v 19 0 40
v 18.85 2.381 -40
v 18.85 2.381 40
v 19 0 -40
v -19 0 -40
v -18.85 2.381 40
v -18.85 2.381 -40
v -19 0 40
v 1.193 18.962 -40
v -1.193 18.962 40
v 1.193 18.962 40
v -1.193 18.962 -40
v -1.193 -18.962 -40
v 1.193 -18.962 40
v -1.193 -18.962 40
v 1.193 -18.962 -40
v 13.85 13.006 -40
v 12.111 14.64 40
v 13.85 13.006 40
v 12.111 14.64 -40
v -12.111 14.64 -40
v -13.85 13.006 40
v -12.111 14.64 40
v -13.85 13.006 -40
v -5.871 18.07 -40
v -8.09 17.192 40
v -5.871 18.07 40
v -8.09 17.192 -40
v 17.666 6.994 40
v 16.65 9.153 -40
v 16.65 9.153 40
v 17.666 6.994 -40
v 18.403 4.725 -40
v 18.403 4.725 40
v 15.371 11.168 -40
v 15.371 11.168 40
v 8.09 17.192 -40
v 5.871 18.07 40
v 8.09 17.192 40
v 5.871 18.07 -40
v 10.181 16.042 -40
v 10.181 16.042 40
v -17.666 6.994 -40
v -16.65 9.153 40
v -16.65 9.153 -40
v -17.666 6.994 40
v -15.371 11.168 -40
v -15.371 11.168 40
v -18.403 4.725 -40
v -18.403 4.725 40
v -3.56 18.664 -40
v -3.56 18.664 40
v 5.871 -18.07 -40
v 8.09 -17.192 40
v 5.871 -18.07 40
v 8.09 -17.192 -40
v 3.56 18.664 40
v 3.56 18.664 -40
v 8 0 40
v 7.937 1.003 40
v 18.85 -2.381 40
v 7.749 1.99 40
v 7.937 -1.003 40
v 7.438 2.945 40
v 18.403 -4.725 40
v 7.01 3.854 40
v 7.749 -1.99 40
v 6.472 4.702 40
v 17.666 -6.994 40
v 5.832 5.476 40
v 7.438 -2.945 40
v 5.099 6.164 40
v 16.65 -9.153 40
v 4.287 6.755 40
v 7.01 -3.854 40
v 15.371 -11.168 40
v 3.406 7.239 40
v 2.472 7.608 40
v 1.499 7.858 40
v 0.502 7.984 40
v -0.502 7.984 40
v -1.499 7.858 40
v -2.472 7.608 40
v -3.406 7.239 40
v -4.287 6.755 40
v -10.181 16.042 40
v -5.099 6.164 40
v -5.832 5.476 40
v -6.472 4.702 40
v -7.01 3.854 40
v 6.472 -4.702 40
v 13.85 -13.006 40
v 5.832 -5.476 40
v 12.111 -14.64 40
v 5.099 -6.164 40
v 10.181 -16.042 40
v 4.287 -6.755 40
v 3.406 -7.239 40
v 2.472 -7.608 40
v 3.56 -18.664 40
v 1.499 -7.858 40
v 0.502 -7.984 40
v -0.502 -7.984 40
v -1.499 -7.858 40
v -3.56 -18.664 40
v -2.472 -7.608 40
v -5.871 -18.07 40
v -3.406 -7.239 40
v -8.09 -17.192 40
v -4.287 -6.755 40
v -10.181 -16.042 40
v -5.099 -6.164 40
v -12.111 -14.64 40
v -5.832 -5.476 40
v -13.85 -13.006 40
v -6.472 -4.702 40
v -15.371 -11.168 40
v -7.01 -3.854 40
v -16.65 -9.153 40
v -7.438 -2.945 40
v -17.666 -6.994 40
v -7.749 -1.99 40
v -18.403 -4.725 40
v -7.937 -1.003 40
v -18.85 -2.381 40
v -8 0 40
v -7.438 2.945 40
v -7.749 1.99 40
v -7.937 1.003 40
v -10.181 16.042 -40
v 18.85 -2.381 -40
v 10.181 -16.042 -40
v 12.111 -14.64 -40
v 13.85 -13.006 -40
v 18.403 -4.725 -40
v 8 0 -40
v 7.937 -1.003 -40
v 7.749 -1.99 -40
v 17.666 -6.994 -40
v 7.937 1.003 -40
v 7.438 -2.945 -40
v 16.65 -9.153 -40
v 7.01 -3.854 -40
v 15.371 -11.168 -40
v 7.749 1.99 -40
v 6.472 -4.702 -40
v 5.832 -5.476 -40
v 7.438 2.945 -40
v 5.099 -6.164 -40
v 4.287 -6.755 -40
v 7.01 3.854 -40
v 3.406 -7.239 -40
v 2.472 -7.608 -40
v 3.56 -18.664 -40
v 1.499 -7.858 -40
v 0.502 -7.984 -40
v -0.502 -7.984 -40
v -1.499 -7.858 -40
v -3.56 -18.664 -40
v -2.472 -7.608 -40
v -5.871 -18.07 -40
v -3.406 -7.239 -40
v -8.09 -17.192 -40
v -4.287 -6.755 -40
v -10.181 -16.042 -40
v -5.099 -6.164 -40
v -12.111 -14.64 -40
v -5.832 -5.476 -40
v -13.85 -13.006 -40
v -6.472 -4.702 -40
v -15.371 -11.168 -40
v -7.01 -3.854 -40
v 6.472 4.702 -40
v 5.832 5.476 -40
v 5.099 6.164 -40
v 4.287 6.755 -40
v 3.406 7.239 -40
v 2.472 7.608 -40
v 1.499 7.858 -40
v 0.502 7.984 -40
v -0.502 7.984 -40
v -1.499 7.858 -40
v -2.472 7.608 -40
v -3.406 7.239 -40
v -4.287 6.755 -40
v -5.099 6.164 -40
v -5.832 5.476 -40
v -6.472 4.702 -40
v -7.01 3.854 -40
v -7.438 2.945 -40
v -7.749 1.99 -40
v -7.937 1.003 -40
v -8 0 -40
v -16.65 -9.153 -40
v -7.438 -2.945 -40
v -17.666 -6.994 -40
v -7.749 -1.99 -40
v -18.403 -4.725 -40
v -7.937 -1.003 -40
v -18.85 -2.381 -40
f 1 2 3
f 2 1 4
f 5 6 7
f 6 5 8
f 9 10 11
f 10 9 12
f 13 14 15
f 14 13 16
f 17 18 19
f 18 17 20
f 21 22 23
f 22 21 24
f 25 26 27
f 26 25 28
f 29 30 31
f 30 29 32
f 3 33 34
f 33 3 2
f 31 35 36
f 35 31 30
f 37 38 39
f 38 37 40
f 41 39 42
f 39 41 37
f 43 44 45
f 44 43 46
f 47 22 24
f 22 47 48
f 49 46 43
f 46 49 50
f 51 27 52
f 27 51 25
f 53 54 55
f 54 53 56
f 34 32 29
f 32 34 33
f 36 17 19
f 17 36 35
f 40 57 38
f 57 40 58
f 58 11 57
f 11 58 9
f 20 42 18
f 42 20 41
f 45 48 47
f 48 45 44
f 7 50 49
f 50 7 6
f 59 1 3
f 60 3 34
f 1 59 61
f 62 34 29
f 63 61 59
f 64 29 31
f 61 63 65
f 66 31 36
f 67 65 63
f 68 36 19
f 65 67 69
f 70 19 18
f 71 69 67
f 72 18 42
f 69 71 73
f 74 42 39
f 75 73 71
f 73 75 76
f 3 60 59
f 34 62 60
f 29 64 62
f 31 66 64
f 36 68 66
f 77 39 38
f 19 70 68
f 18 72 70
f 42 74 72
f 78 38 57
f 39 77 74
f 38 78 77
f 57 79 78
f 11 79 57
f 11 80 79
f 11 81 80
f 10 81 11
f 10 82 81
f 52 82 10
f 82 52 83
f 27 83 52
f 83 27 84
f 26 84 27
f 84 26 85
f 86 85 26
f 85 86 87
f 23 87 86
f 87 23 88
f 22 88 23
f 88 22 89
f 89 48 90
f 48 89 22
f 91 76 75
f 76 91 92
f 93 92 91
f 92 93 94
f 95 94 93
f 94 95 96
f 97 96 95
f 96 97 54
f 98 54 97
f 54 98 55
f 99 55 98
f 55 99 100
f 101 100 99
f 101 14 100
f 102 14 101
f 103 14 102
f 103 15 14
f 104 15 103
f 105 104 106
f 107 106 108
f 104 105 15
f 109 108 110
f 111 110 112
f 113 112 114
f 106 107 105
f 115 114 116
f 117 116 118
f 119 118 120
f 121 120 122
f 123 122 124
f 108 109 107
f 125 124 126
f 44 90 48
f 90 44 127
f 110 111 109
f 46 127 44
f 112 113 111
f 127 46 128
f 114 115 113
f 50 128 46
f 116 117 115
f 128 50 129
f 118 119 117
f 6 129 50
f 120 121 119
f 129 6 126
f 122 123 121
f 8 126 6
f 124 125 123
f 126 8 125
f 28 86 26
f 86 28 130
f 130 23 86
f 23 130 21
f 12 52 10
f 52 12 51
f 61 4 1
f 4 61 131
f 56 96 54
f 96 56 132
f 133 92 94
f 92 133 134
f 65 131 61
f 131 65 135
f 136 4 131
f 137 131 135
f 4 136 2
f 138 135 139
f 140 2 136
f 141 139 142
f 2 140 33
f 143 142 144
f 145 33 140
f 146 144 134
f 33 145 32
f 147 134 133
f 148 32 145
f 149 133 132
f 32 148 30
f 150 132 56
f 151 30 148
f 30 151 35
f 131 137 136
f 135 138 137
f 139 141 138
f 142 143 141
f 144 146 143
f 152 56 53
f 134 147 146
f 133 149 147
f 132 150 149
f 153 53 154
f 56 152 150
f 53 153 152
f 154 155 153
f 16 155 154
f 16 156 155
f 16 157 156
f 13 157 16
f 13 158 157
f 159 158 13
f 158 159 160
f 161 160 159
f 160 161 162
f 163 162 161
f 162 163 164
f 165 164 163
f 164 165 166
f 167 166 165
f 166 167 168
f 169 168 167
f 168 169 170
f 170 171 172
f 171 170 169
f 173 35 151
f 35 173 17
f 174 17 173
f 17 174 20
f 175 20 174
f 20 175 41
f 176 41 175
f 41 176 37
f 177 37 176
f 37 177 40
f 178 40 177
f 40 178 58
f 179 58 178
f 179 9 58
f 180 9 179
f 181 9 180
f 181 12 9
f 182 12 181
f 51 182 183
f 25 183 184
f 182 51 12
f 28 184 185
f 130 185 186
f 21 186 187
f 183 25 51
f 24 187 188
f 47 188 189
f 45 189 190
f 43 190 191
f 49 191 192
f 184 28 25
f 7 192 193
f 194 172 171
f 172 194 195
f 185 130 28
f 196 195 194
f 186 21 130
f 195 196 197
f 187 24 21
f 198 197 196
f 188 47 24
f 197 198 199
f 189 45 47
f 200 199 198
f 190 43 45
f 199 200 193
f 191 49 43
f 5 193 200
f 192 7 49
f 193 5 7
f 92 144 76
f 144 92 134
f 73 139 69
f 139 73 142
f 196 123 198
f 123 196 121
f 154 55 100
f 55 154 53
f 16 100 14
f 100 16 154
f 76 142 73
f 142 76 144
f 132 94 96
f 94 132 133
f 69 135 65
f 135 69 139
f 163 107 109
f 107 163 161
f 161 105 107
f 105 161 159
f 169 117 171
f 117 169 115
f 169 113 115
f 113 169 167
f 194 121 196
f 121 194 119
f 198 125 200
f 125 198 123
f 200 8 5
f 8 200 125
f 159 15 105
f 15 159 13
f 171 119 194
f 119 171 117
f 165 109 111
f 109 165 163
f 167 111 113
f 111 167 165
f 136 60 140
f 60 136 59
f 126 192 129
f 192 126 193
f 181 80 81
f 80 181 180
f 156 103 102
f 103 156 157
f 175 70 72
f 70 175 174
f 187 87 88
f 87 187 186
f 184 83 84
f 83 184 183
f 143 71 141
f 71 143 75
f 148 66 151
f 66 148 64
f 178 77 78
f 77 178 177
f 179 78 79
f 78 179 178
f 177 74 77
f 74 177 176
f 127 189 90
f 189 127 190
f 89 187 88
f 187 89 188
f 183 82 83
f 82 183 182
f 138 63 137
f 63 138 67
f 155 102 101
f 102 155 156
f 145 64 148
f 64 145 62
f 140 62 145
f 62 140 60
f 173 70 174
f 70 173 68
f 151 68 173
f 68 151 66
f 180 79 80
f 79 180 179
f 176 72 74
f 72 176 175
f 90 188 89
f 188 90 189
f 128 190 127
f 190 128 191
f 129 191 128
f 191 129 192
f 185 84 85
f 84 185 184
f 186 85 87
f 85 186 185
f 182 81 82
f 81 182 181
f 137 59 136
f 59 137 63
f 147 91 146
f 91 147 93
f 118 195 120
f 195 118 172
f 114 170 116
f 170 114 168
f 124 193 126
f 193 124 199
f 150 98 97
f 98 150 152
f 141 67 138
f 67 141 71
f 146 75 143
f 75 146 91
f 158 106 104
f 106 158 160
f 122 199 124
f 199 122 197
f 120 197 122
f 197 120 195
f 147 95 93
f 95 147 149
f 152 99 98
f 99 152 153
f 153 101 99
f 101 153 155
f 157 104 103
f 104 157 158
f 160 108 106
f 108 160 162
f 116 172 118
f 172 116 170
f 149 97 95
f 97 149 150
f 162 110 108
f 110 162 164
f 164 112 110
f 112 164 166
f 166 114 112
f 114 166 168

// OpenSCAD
$fn = 50;


difference() {
	union() {
		translate(v = [0, 0, -40.0000000000]) {
			cylinder(h = 80, r = 19.0000000000);
		}
	}
	union() {
		translate(v = [0, 0, -100.0000000000]) {
			cylinder(h = 200, r = 8);
		}
	}
}
